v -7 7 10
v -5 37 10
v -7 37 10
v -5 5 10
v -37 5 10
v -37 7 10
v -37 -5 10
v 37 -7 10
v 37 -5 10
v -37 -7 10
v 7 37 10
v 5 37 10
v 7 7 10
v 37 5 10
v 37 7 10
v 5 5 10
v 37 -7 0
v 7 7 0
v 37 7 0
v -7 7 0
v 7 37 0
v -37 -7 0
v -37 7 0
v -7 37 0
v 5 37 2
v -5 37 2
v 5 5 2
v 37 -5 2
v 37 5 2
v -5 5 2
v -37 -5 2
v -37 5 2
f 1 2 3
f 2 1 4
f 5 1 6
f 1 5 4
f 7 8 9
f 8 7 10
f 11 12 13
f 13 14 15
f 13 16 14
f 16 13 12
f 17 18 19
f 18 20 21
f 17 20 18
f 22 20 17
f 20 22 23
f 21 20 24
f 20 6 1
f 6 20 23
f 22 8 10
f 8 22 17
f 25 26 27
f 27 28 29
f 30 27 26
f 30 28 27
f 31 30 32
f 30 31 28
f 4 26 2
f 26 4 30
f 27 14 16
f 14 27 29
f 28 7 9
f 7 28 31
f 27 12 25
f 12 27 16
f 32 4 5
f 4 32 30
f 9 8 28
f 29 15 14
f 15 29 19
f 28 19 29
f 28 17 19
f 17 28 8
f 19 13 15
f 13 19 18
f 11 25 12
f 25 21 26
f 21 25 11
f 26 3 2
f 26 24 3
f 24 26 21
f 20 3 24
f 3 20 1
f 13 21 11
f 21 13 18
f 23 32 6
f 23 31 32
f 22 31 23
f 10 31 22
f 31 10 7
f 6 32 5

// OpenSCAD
// Т-образный паз для соединения 3х стенок
// Модульная конструкция: центральное основание + 3 рукава

// Параметры (все размеры в мм)
center_size = 10;     // Размер центрального квадрата (внутри)
sleeve_length = 30;   // Длина рукава
groove_width = 10;    // Ширина паза (внутри) - для фанеры 9.3мм
wall_height = 10;     // Высота стенок
wall_thickness = 2;   // Толщина стенок

// Вычисляемые размеры
total_width = groove_width + 2 * wall_thickness;  // 14 мм
center_total = center_size + 2 * wall_thickness;  // 14 мм

// 1. Метод: нарисовать основание
module draw_base() {
    difference() {
        cube([center_total, center_total, wall_height]);
        translate([wall_thickness, wall_thickness, wall_thickness])
            cube([center_size, center_size, wall_height]);
    }
}

// Модуль для создания одного рукава
module single_sleeve() {
    difference() {
        cube([sleeve_length, total_width, wall_height]);
        translate([0, wall_thickness, wall_thickness])
            cube([sleeve_length, groove_width, wall_height]);
    }
}

// Метод: вырезать отверстие в стенке основания
module cut_wall_opening(side) {
    if (side == 0) {
        translate([center_total - wall_thickness - 0.1, wall_thickness, wall_thickness])
            cube([wall_thickness + 0.2, groove_width, wall_height]);
    } else if (side == 1) {
        translate([wall_thickness, center_total - wall_thickness - 0.1, wall_thickness])
            cube([groove_width, wall_thickness + 0.2, wall_height]);
    } else if (side == 2) {
        translate([-0.1, wall_thickness, wall_thickness])
            cube([wall_thickness + 0.2, groove_width, wall_height]);
    }
}

// 2. Метод: прицепить рукав к основанию
module attach_sleeve(side) {
    if (side == 0) {
        translate([center_total, center_total/2 - total_width/2, 0])
            single_sleeve();
    } else if (side == 1) {
        translate([center_total/2 + total_width/2, center_total, 0])
            rotate([0, 0, 90])
                single_sleeve();
    } else if (side == 2) {
        translate([-sleeve_length, center_total/2 - total_width/2, 0])
            single_sleeve();
    }
}

// Собираем Т-образную конструкцию
translate([-center_total/2, -center_total/2, 0]) {
    union() {
        difference() {
            draw_base();
            cut_wall_opening(0);  // Право
            cut_wall_opening(1);  // Верх
            cut_wall_opening(2);  // Лево
        }
        attach_sleeve(0);  // Право
        attach_sleeve(1);  // Верх
        attach_sleeve(2);  // Лево
    }
}

// Информация для проверки
echo("=== Размеры Т-образного паза ===");
echo("Центральный квадрат (внутри):", center_size, "x", center_size, "мм");
echo("Длина рукава:", sleeve_length, "мм");
